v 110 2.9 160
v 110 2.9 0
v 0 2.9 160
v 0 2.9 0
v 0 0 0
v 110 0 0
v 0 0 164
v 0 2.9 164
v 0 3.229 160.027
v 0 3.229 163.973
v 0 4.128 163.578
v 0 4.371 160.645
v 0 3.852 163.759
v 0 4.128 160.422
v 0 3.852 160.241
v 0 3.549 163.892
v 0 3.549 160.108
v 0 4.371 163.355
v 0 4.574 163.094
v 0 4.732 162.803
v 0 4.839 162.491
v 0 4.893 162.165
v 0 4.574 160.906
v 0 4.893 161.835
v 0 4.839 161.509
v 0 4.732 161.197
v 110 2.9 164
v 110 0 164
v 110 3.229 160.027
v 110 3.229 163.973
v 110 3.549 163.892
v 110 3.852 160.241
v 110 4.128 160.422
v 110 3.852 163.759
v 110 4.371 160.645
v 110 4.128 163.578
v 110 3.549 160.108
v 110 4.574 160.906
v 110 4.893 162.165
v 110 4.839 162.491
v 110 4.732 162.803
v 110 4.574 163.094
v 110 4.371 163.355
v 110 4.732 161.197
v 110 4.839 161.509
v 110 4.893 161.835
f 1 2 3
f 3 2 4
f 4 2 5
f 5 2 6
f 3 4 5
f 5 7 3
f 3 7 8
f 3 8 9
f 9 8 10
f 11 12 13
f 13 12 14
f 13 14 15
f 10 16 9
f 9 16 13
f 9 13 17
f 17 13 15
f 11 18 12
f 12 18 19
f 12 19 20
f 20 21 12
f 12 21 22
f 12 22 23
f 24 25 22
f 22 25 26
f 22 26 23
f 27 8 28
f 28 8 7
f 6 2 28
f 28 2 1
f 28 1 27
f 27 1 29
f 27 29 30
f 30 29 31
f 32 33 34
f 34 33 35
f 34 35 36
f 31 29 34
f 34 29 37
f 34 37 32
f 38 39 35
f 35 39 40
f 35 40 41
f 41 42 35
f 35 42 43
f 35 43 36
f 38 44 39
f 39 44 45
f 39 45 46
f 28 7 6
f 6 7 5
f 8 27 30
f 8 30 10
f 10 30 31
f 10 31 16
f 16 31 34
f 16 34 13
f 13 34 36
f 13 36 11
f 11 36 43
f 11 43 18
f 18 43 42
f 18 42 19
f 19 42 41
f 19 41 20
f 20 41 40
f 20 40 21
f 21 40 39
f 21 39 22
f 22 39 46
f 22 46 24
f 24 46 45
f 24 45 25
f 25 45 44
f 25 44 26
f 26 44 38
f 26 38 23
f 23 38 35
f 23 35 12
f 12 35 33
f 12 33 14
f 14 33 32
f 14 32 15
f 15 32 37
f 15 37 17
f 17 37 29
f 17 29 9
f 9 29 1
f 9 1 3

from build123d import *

# Parameters (mm, degrees)
SKETCH1_W           = 110
SKETCH1_H           = 164
BOSS_EXTRUDE1_DEPTH = 2.9
SKETCH2_W           = 110
SKETCH2_H           = 2
REVOLVE1_ANGLE      = 180


with BuildPart() as part:
    # Sketch1 → Boss-Extrude1 (new body)
    with BuildSketch(Plane(origin=(0, 0, 0), x_dir=(1, 0, 0), z_dir=(0, 1, 0))):
        with Locations((55, -82)):
            Rectangle(SKETCH1_W, SKETCH1_H)
    extrude(amount=BOSS_EXTRUDE1_DEPTH)

    # Sketch2 → Revolve1 (revolve)
    with BuildSketch(Plane(origin=(0, 2.9, 0), x_dir=(1, 0, 0), z_dir=(0, 1, 0))):
        with Locations((55, -163)):
            Rectangle(SKETCH2_W, SKETCH2_H)
    revolve(axis=Axis((110, 2.9, 162), (-1, 0, 0)), revolution_arc=REVOLVE1_ANGLE)


solid = part.part
